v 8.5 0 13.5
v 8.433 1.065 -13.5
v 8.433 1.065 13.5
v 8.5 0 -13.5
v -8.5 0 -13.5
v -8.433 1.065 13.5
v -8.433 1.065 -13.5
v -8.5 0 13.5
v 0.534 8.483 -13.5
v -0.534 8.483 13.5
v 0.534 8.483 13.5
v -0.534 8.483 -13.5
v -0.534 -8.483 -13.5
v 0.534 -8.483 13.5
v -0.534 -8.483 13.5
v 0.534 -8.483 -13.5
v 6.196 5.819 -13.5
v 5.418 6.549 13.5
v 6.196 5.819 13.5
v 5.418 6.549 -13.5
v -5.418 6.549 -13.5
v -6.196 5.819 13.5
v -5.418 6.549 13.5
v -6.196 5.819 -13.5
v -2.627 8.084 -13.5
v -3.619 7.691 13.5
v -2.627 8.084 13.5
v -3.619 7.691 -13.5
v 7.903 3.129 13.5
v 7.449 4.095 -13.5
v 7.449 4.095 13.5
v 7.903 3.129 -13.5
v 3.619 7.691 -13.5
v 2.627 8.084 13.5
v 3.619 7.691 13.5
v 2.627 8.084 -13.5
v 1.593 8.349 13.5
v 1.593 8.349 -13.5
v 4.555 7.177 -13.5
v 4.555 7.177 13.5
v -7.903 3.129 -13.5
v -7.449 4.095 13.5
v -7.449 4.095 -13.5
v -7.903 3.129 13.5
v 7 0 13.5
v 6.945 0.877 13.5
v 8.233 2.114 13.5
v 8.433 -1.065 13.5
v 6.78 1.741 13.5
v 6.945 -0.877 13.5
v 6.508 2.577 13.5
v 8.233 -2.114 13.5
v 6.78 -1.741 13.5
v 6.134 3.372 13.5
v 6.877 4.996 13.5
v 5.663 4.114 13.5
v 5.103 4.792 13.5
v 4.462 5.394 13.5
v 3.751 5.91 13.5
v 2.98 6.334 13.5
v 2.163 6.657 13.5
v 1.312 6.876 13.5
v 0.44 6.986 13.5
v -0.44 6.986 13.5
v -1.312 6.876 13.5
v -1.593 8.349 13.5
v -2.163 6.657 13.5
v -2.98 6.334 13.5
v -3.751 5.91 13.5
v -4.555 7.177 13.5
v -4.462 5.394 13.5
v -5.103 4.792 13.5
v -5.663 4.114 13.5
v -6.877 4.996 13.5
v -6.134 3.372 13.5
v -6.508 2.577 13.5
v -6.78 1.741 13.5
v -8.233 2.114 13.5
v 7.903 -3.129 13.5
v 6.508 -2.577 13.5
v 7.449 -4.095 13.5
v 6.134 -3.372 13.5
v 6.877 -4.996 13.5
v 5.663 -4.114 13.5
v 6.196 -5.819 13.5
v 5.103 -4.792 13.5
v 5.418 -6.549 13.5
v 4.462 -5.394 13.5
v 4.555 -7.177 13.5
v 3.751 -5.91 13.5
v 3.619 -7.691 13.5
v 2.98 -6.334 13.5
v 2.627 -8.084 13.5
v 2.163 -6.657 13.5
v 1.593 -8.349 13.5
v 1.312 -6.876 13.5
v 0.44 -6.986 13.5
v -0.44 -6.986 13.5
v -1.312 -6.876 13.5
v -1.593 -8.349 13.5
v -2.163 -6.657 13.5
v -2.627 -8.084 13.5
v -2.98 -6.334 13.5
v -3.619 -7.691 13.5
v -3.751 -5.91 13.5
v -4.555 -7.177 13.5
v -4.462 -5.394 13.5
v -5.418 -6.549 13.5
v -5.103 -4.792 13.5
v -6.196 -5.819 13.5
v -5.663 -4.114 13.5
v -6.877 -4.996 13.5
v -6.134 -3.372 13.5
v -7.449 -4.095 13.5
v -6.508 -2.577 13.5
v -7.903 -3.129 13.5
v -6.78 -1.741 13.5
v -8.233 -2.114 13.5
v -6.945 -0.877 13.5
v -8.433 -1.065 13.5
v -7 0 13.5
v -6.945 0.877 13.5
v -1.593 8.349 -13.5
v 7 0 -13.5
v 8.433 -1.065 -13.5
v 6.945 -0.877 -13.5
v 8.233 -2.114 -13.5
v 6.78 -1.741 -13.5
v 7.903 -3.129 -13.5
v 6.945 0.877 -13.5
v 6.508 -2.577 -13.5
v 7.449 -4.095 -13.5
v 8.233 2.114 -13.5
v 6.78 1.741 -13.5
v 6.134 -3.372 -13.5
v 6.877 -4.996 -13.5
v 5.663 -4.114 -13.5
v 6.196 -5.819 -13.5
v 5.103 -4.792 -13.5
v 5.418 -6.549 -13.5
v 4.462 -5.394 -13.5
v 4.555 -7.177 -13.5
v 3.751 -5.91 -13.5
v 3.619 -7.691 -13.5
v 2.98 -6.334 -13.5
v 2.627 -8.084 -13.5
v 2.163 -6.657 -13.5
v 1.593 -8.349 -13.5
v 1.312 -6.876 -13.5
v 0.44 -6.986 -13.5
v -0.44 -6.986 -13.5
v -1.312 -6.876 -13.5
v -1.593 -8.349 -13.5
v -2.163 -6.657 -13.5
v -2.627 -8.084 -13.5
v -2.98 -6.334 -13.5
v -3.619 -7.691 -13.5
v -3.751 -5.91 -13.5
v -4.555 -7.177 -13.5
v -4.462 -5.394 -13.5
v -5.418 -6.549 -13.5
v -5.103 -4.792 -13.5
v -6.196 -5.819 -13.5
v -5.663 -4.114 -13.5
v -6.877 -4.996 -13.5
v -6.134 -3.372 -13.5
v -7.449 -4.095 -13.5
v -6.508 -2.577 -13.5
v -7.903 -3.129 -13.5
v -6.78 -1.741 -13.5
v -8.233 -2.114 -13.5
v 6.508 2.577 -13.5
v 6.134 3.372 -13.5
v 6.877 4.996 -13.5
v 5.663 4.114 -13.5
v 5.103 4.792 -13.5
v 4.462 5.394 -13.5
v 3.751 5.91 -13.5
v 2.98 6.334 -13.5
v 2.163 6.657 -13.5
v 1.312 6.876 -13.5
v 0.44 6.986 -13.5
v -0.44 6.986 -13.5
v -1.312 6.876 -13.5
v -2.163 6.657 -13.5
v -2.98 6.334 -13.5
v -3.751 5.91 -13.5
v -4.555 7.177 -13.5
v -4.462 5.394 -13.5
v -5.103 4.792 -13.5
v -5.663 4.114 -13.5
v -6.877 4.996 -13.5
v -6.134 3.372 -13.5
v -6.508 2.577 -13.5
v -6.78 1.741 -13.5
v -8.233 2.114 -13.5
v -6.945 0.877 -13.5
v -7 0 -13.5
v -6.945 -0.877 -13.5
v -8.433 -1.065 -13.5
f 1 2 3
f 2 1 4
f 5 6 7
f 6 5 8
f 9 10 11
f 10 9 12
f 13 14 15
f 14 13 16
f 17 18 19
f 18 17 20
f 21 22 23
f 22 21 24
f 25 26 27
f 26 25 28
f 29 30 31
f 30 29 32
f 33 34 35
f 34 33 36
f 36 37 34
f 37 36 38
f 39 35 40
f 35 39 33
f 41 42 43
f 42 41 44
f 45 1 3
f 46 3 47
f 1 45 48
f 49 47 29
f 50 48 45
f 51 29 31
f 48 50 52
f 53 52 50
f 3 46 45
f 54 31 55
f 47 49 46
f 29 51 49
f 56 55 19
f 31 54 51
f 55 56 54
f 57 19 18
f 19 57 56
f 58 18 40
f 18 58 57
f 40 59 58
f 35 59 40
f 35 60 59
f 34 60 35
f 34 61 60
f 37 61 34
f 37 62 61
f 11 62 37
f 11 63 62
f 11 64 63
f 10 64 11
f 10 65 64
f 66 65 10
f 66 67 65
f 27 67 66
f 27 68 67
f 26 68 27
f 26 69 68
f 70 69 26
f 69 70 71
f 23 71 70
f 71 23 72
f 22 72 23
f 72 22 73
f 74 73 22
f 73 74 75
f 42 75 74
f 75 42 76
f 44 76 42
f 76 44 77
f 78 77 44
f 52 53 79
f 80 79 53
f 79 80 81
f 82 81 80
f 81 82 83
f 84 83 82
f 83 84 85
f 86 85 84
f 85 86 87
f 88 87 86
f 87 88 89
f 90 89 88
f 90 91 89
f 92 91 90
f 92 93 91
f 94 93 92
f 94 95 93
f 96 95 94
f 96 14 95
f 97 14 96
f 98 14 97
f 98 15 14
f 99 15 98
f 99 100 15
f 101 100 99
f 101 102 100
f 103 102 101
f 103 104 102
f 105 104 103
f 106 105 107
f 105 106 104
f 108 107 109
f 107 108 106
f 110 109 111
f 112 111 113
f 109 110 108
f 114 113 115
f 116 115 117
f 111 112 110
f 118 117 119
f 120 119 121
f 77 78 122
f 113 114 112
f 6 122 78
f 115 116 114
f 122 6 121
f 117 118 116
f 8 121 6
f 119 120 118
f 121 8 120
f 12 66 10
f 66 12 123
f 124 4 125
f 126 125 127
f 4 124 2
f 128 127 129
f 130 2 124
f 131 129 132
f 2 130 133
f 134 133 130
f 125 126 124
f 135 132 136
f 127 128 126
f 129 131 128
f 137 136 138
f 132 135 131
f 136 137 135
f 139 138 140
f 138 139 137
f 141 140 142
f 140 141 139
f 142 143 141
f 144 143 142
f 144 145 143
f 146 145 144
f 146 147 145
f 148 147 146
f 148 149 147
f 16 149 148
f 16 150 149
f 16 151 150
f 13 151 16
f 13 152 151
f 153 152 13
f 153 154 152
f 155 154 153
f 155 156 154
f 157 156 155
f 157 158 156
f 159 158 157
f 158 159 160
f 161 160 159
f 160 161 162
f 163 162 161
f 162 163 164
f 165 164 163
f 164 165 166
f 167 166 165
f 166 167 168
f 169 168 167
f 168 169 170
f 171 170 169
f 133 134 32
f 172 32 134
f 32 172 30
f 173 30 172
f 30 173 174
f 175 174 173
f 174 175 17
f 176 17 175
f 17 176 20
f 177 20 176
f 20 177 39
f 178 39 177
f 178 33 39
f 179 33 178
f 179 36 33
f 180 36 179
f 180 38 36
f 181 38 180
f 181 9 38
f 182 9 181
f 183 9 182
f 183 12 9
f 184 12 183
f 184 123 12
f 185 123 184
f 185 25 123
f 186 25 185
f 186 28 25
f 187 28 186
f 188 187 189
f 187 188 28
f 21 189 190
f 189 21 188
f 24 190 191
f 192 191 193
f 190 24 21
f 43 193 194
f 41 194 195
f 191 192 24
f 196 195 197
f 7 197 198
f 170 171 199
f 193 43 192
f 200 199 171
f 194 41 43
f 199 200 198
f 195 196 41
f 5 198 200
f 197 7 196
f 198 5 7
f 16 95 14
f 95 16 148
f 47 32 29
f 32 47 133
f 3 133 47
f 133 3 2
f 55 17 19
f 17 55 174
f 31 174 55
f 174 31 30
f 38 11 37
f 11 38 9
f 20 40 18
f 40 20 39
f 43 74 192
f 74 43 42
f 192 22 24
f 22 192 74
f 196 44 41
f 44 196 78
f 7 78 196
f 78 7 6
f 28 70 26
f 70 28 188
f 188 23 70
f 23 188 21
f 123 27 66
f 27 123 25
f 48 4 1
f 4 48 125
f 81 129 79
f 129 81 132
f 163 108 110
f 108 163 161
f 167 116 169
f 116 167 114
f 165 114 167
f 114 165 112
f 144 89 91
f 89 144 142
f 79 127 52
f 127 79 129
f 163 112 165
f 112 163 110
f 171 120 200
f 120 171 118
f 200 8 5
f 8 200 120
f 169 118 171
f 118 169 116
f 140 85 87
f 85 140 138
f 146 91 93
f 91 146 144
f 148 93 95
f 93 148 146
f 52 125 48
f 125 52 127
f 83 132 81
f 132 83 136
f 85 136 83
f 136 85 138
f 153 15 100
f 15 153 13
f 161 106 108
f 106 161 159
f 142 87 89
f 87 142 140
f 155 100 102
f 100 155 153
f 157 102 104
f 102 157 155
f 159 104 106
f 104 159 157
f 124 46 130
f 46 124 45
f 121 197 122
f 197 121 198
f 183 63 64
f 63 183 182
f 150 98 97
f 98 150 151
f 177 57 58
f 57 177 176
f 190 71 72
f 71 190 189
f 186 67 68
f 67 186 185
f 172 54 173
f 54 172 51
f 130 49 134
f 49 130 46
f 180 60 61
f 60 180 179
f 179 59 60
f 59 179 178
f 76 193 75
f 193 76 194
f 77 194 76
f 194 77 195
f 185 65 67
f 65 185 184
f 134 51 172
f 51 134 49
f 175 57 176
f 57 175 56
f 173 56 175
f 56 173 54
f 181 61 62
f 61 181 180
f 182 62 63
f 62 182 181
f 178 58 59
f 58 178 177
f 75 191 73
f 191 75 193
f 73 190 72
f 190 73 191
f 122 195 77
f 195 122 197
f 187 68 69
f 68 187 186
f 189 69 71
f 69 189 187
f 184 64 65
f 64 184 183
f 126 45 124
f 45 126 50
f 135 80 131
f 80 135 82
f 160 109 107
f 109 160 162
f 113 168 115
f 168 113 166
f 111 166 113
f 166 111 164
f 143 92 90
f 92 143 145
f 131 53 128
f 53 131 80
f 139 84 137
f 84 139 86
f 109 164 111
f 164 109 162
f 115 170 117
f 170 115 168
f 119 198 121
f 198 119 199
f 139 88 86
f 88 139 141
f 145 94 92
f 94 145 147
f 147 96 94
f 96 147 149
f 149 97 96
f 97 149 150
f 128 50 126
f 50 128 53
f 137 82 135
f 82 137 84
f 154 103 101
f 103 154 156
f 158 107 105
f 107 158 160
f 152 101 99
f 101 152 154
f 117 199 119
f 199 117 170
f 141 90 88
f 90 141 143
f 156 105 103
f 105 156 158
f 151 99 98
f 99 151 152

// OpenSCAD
$fn = 50;


difference() {
	union() {
		translate(v = [0, 0, -13.5000000000]) {
			cylinder(h = 27, r = 8.5000000000);
		}
	}
	union() {
		translate(v = [0, 0, -100.0000000000]) {
			cylinder(h = 200, r = 7);
		}
	}
}
